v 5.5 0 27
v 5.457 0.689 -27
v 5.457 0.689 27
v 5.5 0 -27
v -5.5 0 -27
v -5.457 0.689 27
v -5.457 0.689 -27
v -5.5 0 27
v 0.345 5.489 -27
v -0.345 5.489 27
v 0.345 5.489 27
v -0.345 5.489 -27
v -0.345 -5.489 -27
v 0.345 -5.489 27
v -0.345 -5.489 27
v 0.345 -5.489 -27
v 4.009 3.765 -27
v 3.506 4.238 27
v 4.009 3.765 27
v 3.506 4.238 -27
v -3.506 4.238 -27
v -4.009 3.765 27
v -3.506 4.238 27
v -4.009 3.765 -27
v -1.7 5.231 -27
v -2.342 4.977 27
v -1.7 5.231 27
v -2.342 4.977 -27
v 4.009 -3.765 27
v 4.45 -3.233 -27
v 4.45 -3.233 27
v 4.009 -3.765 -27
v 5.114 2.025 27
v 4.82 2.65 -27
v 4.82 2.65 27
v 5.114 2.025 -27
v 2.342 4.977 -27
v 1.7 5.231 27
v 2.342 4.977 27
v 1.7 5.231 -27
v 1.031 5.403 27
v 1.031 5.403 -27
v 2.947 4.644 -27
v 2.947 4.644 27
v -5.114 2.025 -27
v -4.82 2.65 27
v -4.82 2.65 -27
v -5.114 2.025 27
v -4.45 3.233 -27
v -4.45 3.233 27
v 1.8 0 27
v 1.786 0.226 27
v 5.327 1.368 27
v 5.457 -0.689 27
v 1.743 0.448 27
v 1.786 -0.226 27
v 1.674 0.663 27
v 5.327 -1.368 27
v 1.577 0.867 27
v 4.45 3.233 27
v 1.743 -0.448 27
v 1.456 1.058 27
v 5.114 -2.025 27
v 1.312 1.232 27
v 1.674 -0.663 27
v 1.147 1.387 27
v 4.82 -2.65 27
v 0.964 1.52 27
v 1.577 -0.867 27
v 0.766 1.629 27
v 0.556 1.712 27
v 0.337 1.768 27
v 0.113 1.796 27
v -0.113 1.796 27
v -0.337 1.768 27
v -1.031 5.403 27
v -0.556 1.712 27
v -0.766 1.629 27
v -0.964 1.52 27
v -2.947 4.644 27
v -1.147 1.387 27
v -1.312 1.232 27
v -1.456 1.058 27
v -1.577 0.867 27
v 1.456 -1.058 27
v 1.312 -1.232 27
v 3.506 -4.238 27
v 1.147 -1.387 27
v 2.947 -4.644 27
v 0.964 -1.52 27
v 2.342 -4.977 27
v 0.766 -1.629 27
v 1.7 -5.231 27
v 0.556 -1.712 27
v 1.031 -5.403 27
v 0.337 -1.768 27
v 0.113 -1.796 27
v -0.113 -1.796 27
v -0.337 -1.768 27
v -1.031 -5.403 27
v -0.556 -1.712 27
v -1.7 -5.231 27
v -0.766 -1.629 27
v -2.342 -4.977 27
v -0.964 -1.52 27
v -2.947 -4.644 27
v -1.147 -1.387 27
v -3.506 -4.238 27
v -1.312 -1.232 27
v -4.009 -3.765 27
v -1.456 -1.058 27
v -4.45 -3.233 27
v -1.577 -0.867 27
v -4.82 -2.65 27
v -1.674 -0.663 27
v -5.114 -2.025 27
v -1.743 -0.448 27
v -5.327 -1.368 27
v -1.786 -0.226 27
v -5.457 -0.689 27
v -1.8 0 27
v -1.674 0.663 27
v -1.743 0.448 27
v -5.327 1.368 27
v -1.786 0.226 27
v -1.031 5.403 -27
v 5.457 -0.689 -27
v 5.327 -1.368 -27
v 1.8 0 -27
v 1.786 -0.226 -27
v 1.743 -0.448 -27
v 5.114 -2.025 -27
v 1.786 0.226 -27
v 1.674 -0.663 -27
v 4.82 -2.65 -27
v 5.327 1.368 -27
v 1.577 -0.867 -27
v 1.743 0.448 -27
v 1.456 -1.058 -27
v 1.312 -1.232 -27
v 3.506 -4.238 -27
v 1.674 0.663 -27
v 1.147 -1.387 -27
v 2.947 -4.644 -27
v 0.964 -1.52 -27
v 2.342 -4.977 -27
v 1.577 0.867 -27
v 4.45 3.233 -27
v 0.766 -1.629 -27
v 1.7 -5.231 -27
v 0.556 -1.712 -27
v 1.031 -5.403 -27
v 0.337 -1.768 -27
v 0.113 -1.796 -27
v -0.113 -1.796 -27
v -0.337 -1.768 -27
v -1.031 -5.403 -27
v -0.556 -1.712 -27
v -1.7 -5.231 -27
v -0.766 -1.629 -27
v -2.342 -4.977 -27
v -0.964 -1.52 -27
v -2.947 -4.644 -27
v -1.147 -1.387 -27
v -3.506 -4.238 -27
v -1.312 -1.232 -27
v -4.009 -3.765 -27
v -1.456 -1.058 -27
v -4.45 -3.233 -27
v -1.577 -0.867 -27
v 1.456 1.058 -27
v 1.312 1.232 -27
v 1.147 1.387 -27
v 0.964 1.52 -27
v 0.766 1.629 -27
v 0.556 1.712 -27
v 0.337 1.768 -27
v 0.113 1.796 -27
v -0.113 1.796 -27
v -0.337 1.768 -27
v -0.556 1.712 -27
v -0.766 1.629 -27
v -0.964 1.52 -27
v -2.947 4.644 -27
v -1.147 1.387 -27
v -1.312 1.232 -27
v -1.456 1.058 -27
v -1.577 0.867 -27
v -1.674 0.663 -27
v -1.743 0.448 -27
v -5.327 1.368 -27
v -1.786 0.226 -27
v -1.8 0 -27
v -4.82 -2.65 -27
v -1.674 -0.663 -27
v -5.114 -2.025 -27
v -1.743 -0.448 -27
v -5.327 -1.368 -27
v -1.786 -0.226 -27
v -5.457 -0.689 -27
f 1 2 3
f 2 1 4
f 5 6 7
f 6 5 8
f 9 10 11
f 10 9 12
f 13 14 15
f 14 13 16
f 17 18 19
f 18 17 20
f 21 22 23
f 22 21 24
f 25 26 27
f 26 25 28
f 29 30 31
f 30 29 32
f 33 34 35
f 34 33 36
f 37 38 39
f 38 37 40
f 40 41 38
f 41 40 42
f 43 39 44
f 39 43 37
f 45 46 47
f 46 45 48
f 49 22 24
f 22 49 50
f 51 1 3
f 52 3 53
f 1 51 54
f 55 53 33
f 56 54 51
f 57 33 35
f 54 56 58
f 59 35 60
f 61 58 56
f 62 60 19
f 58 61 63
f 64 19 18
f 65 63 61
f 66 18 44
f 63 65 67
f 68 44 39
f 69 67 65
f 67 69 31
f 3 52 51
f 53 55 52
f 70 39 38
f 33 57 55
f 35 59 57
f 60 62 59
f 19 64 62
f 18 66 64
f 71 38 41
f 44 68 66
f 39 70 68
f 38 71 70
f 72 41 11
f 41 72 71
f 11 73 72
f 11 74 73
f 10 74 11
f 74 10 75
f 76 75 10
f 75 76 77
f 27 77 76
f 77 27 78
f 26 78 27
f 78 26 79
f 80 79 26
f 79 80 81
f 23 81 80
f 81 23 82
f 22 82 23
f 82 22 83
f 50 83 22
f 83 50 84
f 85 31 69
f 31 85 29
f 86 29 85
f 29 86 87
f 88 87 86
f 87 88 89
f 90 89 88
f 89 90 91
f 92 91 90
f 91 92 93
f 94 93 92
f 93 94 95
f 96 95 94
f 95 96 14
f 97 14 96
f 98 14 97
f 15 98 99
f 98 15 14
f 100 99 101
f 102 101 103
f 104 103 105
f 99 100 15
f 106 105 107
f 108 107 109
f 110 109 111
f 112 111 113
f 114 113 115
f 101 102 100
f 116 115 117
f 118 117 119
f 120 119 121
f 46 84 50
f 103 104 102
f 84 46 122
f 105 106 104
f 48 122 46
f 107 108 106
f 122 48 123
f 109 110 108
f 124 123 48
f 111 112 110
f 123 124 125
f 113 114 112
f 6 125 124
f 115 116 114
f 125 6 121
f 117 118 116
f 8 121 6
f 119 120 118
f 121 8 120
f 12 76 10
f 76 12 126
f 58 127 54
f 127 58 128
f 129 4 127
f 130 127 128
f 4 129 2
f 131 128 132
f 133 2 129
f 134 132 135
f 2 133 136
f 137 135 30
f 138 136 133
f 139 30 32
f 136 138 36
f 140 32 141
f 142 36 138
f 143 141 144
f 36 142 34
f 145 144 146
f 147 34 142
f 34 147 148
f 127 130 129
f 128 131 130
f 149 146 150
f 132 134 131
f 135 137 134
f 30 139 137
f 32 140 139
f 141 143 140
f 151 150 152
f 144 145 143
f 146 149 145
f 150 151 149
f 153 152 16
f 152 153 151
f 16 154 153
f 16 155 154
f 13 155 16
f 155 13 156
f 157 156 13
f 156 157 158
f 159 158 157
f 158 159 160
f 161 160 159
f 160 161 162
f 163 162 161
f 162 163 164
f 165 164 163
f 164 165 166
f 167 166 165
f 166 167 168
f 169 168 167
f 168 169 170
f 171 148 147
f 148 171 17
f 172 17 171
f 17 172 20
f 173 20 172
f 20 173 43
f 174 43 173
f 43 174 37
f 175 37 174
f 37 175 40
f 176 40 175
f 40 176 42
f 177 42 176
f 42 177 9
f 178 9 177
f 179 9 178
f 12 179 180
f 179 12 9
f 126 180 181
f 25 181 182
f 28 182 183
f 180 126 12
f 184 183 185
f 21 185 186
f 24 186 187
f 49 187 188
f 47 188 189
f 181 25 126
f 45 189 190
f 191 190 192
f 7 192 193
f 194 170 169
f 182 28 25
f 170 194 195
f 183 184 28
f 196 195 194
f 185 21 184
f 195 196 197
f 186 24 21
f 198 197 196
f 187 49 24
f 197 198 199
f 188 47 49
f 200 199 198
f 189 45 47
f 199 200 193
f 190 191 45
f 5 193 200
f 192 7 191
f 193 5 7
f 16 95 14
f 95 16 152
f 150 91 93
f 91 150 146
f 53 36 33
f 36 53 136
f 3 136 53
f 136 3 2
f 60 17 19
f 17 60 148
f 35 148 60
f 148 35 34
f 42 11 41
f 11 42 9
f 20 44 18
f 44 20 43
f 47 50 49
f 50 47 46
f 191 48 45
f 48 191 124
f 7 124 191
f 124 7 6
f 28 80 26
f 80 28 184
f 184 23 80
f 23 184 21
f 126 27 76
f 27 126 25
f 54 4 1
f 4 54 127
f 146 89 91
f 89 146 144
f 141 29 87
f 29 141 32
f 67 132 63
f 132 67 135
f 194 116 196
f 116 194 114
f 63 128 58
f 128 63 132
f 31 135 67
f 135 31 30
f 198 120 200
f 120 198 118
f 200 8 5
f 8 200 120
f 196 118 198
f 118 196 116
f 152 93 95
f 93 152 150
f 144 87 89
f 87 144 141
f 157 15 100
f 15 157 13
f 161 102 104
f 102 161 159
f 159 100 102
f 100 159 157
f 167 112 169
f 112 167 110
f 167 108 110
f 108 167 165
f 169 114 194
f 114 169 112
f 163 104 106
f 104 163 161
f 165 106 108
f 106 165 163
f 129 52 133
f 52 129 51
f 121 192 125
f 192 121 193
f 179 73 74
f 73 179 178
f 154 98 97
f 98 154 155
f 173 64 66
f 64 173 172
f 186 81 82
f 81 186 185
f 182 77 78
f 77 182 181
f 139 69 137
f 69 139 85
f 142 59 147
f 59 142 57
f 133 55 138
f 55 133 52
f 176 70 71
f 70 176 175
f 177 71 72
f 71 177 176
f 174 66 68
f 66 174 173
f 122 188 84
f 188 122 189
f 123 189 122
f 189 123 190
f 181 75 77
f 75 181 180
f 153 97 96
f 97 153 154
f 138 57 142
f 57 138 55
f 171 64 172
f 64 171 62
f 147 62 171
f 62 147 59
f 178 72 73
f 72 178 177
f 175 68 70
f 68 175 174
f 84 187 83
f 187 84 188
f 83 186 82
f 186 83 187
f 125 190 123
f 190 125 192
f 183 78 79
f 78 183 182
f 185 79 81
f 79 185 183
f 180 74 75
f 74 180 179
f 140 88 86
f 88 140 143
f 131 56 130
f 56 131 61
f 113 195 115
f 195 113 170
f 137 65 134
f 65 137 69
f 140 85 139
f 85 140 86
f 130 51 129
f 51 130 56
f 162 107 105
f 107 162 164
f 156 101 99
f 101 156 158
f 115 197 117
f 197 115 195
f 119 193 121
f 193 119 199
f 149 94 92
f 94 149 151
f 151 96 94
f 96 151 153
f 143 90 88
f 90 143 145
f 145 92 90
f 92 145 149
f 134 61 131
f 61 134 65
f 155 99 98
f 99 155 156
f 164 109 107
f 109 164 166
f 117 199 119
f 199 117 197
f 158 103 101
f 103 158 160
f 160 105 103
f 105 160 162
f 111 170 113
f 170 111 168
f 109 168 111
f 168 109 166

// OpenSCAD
$fn = 50;


difference() {
	union() {
		translate(v = [0, 0, -27.0000000000]) {
			cylinder(h = 54, r = 5.5000000000);
		}
	}
	union() {
		translate(v = [0, 0, -100.0000000000]) {
			cylinder(h = 200, r = 1.8000000000);
		}
	}
}
